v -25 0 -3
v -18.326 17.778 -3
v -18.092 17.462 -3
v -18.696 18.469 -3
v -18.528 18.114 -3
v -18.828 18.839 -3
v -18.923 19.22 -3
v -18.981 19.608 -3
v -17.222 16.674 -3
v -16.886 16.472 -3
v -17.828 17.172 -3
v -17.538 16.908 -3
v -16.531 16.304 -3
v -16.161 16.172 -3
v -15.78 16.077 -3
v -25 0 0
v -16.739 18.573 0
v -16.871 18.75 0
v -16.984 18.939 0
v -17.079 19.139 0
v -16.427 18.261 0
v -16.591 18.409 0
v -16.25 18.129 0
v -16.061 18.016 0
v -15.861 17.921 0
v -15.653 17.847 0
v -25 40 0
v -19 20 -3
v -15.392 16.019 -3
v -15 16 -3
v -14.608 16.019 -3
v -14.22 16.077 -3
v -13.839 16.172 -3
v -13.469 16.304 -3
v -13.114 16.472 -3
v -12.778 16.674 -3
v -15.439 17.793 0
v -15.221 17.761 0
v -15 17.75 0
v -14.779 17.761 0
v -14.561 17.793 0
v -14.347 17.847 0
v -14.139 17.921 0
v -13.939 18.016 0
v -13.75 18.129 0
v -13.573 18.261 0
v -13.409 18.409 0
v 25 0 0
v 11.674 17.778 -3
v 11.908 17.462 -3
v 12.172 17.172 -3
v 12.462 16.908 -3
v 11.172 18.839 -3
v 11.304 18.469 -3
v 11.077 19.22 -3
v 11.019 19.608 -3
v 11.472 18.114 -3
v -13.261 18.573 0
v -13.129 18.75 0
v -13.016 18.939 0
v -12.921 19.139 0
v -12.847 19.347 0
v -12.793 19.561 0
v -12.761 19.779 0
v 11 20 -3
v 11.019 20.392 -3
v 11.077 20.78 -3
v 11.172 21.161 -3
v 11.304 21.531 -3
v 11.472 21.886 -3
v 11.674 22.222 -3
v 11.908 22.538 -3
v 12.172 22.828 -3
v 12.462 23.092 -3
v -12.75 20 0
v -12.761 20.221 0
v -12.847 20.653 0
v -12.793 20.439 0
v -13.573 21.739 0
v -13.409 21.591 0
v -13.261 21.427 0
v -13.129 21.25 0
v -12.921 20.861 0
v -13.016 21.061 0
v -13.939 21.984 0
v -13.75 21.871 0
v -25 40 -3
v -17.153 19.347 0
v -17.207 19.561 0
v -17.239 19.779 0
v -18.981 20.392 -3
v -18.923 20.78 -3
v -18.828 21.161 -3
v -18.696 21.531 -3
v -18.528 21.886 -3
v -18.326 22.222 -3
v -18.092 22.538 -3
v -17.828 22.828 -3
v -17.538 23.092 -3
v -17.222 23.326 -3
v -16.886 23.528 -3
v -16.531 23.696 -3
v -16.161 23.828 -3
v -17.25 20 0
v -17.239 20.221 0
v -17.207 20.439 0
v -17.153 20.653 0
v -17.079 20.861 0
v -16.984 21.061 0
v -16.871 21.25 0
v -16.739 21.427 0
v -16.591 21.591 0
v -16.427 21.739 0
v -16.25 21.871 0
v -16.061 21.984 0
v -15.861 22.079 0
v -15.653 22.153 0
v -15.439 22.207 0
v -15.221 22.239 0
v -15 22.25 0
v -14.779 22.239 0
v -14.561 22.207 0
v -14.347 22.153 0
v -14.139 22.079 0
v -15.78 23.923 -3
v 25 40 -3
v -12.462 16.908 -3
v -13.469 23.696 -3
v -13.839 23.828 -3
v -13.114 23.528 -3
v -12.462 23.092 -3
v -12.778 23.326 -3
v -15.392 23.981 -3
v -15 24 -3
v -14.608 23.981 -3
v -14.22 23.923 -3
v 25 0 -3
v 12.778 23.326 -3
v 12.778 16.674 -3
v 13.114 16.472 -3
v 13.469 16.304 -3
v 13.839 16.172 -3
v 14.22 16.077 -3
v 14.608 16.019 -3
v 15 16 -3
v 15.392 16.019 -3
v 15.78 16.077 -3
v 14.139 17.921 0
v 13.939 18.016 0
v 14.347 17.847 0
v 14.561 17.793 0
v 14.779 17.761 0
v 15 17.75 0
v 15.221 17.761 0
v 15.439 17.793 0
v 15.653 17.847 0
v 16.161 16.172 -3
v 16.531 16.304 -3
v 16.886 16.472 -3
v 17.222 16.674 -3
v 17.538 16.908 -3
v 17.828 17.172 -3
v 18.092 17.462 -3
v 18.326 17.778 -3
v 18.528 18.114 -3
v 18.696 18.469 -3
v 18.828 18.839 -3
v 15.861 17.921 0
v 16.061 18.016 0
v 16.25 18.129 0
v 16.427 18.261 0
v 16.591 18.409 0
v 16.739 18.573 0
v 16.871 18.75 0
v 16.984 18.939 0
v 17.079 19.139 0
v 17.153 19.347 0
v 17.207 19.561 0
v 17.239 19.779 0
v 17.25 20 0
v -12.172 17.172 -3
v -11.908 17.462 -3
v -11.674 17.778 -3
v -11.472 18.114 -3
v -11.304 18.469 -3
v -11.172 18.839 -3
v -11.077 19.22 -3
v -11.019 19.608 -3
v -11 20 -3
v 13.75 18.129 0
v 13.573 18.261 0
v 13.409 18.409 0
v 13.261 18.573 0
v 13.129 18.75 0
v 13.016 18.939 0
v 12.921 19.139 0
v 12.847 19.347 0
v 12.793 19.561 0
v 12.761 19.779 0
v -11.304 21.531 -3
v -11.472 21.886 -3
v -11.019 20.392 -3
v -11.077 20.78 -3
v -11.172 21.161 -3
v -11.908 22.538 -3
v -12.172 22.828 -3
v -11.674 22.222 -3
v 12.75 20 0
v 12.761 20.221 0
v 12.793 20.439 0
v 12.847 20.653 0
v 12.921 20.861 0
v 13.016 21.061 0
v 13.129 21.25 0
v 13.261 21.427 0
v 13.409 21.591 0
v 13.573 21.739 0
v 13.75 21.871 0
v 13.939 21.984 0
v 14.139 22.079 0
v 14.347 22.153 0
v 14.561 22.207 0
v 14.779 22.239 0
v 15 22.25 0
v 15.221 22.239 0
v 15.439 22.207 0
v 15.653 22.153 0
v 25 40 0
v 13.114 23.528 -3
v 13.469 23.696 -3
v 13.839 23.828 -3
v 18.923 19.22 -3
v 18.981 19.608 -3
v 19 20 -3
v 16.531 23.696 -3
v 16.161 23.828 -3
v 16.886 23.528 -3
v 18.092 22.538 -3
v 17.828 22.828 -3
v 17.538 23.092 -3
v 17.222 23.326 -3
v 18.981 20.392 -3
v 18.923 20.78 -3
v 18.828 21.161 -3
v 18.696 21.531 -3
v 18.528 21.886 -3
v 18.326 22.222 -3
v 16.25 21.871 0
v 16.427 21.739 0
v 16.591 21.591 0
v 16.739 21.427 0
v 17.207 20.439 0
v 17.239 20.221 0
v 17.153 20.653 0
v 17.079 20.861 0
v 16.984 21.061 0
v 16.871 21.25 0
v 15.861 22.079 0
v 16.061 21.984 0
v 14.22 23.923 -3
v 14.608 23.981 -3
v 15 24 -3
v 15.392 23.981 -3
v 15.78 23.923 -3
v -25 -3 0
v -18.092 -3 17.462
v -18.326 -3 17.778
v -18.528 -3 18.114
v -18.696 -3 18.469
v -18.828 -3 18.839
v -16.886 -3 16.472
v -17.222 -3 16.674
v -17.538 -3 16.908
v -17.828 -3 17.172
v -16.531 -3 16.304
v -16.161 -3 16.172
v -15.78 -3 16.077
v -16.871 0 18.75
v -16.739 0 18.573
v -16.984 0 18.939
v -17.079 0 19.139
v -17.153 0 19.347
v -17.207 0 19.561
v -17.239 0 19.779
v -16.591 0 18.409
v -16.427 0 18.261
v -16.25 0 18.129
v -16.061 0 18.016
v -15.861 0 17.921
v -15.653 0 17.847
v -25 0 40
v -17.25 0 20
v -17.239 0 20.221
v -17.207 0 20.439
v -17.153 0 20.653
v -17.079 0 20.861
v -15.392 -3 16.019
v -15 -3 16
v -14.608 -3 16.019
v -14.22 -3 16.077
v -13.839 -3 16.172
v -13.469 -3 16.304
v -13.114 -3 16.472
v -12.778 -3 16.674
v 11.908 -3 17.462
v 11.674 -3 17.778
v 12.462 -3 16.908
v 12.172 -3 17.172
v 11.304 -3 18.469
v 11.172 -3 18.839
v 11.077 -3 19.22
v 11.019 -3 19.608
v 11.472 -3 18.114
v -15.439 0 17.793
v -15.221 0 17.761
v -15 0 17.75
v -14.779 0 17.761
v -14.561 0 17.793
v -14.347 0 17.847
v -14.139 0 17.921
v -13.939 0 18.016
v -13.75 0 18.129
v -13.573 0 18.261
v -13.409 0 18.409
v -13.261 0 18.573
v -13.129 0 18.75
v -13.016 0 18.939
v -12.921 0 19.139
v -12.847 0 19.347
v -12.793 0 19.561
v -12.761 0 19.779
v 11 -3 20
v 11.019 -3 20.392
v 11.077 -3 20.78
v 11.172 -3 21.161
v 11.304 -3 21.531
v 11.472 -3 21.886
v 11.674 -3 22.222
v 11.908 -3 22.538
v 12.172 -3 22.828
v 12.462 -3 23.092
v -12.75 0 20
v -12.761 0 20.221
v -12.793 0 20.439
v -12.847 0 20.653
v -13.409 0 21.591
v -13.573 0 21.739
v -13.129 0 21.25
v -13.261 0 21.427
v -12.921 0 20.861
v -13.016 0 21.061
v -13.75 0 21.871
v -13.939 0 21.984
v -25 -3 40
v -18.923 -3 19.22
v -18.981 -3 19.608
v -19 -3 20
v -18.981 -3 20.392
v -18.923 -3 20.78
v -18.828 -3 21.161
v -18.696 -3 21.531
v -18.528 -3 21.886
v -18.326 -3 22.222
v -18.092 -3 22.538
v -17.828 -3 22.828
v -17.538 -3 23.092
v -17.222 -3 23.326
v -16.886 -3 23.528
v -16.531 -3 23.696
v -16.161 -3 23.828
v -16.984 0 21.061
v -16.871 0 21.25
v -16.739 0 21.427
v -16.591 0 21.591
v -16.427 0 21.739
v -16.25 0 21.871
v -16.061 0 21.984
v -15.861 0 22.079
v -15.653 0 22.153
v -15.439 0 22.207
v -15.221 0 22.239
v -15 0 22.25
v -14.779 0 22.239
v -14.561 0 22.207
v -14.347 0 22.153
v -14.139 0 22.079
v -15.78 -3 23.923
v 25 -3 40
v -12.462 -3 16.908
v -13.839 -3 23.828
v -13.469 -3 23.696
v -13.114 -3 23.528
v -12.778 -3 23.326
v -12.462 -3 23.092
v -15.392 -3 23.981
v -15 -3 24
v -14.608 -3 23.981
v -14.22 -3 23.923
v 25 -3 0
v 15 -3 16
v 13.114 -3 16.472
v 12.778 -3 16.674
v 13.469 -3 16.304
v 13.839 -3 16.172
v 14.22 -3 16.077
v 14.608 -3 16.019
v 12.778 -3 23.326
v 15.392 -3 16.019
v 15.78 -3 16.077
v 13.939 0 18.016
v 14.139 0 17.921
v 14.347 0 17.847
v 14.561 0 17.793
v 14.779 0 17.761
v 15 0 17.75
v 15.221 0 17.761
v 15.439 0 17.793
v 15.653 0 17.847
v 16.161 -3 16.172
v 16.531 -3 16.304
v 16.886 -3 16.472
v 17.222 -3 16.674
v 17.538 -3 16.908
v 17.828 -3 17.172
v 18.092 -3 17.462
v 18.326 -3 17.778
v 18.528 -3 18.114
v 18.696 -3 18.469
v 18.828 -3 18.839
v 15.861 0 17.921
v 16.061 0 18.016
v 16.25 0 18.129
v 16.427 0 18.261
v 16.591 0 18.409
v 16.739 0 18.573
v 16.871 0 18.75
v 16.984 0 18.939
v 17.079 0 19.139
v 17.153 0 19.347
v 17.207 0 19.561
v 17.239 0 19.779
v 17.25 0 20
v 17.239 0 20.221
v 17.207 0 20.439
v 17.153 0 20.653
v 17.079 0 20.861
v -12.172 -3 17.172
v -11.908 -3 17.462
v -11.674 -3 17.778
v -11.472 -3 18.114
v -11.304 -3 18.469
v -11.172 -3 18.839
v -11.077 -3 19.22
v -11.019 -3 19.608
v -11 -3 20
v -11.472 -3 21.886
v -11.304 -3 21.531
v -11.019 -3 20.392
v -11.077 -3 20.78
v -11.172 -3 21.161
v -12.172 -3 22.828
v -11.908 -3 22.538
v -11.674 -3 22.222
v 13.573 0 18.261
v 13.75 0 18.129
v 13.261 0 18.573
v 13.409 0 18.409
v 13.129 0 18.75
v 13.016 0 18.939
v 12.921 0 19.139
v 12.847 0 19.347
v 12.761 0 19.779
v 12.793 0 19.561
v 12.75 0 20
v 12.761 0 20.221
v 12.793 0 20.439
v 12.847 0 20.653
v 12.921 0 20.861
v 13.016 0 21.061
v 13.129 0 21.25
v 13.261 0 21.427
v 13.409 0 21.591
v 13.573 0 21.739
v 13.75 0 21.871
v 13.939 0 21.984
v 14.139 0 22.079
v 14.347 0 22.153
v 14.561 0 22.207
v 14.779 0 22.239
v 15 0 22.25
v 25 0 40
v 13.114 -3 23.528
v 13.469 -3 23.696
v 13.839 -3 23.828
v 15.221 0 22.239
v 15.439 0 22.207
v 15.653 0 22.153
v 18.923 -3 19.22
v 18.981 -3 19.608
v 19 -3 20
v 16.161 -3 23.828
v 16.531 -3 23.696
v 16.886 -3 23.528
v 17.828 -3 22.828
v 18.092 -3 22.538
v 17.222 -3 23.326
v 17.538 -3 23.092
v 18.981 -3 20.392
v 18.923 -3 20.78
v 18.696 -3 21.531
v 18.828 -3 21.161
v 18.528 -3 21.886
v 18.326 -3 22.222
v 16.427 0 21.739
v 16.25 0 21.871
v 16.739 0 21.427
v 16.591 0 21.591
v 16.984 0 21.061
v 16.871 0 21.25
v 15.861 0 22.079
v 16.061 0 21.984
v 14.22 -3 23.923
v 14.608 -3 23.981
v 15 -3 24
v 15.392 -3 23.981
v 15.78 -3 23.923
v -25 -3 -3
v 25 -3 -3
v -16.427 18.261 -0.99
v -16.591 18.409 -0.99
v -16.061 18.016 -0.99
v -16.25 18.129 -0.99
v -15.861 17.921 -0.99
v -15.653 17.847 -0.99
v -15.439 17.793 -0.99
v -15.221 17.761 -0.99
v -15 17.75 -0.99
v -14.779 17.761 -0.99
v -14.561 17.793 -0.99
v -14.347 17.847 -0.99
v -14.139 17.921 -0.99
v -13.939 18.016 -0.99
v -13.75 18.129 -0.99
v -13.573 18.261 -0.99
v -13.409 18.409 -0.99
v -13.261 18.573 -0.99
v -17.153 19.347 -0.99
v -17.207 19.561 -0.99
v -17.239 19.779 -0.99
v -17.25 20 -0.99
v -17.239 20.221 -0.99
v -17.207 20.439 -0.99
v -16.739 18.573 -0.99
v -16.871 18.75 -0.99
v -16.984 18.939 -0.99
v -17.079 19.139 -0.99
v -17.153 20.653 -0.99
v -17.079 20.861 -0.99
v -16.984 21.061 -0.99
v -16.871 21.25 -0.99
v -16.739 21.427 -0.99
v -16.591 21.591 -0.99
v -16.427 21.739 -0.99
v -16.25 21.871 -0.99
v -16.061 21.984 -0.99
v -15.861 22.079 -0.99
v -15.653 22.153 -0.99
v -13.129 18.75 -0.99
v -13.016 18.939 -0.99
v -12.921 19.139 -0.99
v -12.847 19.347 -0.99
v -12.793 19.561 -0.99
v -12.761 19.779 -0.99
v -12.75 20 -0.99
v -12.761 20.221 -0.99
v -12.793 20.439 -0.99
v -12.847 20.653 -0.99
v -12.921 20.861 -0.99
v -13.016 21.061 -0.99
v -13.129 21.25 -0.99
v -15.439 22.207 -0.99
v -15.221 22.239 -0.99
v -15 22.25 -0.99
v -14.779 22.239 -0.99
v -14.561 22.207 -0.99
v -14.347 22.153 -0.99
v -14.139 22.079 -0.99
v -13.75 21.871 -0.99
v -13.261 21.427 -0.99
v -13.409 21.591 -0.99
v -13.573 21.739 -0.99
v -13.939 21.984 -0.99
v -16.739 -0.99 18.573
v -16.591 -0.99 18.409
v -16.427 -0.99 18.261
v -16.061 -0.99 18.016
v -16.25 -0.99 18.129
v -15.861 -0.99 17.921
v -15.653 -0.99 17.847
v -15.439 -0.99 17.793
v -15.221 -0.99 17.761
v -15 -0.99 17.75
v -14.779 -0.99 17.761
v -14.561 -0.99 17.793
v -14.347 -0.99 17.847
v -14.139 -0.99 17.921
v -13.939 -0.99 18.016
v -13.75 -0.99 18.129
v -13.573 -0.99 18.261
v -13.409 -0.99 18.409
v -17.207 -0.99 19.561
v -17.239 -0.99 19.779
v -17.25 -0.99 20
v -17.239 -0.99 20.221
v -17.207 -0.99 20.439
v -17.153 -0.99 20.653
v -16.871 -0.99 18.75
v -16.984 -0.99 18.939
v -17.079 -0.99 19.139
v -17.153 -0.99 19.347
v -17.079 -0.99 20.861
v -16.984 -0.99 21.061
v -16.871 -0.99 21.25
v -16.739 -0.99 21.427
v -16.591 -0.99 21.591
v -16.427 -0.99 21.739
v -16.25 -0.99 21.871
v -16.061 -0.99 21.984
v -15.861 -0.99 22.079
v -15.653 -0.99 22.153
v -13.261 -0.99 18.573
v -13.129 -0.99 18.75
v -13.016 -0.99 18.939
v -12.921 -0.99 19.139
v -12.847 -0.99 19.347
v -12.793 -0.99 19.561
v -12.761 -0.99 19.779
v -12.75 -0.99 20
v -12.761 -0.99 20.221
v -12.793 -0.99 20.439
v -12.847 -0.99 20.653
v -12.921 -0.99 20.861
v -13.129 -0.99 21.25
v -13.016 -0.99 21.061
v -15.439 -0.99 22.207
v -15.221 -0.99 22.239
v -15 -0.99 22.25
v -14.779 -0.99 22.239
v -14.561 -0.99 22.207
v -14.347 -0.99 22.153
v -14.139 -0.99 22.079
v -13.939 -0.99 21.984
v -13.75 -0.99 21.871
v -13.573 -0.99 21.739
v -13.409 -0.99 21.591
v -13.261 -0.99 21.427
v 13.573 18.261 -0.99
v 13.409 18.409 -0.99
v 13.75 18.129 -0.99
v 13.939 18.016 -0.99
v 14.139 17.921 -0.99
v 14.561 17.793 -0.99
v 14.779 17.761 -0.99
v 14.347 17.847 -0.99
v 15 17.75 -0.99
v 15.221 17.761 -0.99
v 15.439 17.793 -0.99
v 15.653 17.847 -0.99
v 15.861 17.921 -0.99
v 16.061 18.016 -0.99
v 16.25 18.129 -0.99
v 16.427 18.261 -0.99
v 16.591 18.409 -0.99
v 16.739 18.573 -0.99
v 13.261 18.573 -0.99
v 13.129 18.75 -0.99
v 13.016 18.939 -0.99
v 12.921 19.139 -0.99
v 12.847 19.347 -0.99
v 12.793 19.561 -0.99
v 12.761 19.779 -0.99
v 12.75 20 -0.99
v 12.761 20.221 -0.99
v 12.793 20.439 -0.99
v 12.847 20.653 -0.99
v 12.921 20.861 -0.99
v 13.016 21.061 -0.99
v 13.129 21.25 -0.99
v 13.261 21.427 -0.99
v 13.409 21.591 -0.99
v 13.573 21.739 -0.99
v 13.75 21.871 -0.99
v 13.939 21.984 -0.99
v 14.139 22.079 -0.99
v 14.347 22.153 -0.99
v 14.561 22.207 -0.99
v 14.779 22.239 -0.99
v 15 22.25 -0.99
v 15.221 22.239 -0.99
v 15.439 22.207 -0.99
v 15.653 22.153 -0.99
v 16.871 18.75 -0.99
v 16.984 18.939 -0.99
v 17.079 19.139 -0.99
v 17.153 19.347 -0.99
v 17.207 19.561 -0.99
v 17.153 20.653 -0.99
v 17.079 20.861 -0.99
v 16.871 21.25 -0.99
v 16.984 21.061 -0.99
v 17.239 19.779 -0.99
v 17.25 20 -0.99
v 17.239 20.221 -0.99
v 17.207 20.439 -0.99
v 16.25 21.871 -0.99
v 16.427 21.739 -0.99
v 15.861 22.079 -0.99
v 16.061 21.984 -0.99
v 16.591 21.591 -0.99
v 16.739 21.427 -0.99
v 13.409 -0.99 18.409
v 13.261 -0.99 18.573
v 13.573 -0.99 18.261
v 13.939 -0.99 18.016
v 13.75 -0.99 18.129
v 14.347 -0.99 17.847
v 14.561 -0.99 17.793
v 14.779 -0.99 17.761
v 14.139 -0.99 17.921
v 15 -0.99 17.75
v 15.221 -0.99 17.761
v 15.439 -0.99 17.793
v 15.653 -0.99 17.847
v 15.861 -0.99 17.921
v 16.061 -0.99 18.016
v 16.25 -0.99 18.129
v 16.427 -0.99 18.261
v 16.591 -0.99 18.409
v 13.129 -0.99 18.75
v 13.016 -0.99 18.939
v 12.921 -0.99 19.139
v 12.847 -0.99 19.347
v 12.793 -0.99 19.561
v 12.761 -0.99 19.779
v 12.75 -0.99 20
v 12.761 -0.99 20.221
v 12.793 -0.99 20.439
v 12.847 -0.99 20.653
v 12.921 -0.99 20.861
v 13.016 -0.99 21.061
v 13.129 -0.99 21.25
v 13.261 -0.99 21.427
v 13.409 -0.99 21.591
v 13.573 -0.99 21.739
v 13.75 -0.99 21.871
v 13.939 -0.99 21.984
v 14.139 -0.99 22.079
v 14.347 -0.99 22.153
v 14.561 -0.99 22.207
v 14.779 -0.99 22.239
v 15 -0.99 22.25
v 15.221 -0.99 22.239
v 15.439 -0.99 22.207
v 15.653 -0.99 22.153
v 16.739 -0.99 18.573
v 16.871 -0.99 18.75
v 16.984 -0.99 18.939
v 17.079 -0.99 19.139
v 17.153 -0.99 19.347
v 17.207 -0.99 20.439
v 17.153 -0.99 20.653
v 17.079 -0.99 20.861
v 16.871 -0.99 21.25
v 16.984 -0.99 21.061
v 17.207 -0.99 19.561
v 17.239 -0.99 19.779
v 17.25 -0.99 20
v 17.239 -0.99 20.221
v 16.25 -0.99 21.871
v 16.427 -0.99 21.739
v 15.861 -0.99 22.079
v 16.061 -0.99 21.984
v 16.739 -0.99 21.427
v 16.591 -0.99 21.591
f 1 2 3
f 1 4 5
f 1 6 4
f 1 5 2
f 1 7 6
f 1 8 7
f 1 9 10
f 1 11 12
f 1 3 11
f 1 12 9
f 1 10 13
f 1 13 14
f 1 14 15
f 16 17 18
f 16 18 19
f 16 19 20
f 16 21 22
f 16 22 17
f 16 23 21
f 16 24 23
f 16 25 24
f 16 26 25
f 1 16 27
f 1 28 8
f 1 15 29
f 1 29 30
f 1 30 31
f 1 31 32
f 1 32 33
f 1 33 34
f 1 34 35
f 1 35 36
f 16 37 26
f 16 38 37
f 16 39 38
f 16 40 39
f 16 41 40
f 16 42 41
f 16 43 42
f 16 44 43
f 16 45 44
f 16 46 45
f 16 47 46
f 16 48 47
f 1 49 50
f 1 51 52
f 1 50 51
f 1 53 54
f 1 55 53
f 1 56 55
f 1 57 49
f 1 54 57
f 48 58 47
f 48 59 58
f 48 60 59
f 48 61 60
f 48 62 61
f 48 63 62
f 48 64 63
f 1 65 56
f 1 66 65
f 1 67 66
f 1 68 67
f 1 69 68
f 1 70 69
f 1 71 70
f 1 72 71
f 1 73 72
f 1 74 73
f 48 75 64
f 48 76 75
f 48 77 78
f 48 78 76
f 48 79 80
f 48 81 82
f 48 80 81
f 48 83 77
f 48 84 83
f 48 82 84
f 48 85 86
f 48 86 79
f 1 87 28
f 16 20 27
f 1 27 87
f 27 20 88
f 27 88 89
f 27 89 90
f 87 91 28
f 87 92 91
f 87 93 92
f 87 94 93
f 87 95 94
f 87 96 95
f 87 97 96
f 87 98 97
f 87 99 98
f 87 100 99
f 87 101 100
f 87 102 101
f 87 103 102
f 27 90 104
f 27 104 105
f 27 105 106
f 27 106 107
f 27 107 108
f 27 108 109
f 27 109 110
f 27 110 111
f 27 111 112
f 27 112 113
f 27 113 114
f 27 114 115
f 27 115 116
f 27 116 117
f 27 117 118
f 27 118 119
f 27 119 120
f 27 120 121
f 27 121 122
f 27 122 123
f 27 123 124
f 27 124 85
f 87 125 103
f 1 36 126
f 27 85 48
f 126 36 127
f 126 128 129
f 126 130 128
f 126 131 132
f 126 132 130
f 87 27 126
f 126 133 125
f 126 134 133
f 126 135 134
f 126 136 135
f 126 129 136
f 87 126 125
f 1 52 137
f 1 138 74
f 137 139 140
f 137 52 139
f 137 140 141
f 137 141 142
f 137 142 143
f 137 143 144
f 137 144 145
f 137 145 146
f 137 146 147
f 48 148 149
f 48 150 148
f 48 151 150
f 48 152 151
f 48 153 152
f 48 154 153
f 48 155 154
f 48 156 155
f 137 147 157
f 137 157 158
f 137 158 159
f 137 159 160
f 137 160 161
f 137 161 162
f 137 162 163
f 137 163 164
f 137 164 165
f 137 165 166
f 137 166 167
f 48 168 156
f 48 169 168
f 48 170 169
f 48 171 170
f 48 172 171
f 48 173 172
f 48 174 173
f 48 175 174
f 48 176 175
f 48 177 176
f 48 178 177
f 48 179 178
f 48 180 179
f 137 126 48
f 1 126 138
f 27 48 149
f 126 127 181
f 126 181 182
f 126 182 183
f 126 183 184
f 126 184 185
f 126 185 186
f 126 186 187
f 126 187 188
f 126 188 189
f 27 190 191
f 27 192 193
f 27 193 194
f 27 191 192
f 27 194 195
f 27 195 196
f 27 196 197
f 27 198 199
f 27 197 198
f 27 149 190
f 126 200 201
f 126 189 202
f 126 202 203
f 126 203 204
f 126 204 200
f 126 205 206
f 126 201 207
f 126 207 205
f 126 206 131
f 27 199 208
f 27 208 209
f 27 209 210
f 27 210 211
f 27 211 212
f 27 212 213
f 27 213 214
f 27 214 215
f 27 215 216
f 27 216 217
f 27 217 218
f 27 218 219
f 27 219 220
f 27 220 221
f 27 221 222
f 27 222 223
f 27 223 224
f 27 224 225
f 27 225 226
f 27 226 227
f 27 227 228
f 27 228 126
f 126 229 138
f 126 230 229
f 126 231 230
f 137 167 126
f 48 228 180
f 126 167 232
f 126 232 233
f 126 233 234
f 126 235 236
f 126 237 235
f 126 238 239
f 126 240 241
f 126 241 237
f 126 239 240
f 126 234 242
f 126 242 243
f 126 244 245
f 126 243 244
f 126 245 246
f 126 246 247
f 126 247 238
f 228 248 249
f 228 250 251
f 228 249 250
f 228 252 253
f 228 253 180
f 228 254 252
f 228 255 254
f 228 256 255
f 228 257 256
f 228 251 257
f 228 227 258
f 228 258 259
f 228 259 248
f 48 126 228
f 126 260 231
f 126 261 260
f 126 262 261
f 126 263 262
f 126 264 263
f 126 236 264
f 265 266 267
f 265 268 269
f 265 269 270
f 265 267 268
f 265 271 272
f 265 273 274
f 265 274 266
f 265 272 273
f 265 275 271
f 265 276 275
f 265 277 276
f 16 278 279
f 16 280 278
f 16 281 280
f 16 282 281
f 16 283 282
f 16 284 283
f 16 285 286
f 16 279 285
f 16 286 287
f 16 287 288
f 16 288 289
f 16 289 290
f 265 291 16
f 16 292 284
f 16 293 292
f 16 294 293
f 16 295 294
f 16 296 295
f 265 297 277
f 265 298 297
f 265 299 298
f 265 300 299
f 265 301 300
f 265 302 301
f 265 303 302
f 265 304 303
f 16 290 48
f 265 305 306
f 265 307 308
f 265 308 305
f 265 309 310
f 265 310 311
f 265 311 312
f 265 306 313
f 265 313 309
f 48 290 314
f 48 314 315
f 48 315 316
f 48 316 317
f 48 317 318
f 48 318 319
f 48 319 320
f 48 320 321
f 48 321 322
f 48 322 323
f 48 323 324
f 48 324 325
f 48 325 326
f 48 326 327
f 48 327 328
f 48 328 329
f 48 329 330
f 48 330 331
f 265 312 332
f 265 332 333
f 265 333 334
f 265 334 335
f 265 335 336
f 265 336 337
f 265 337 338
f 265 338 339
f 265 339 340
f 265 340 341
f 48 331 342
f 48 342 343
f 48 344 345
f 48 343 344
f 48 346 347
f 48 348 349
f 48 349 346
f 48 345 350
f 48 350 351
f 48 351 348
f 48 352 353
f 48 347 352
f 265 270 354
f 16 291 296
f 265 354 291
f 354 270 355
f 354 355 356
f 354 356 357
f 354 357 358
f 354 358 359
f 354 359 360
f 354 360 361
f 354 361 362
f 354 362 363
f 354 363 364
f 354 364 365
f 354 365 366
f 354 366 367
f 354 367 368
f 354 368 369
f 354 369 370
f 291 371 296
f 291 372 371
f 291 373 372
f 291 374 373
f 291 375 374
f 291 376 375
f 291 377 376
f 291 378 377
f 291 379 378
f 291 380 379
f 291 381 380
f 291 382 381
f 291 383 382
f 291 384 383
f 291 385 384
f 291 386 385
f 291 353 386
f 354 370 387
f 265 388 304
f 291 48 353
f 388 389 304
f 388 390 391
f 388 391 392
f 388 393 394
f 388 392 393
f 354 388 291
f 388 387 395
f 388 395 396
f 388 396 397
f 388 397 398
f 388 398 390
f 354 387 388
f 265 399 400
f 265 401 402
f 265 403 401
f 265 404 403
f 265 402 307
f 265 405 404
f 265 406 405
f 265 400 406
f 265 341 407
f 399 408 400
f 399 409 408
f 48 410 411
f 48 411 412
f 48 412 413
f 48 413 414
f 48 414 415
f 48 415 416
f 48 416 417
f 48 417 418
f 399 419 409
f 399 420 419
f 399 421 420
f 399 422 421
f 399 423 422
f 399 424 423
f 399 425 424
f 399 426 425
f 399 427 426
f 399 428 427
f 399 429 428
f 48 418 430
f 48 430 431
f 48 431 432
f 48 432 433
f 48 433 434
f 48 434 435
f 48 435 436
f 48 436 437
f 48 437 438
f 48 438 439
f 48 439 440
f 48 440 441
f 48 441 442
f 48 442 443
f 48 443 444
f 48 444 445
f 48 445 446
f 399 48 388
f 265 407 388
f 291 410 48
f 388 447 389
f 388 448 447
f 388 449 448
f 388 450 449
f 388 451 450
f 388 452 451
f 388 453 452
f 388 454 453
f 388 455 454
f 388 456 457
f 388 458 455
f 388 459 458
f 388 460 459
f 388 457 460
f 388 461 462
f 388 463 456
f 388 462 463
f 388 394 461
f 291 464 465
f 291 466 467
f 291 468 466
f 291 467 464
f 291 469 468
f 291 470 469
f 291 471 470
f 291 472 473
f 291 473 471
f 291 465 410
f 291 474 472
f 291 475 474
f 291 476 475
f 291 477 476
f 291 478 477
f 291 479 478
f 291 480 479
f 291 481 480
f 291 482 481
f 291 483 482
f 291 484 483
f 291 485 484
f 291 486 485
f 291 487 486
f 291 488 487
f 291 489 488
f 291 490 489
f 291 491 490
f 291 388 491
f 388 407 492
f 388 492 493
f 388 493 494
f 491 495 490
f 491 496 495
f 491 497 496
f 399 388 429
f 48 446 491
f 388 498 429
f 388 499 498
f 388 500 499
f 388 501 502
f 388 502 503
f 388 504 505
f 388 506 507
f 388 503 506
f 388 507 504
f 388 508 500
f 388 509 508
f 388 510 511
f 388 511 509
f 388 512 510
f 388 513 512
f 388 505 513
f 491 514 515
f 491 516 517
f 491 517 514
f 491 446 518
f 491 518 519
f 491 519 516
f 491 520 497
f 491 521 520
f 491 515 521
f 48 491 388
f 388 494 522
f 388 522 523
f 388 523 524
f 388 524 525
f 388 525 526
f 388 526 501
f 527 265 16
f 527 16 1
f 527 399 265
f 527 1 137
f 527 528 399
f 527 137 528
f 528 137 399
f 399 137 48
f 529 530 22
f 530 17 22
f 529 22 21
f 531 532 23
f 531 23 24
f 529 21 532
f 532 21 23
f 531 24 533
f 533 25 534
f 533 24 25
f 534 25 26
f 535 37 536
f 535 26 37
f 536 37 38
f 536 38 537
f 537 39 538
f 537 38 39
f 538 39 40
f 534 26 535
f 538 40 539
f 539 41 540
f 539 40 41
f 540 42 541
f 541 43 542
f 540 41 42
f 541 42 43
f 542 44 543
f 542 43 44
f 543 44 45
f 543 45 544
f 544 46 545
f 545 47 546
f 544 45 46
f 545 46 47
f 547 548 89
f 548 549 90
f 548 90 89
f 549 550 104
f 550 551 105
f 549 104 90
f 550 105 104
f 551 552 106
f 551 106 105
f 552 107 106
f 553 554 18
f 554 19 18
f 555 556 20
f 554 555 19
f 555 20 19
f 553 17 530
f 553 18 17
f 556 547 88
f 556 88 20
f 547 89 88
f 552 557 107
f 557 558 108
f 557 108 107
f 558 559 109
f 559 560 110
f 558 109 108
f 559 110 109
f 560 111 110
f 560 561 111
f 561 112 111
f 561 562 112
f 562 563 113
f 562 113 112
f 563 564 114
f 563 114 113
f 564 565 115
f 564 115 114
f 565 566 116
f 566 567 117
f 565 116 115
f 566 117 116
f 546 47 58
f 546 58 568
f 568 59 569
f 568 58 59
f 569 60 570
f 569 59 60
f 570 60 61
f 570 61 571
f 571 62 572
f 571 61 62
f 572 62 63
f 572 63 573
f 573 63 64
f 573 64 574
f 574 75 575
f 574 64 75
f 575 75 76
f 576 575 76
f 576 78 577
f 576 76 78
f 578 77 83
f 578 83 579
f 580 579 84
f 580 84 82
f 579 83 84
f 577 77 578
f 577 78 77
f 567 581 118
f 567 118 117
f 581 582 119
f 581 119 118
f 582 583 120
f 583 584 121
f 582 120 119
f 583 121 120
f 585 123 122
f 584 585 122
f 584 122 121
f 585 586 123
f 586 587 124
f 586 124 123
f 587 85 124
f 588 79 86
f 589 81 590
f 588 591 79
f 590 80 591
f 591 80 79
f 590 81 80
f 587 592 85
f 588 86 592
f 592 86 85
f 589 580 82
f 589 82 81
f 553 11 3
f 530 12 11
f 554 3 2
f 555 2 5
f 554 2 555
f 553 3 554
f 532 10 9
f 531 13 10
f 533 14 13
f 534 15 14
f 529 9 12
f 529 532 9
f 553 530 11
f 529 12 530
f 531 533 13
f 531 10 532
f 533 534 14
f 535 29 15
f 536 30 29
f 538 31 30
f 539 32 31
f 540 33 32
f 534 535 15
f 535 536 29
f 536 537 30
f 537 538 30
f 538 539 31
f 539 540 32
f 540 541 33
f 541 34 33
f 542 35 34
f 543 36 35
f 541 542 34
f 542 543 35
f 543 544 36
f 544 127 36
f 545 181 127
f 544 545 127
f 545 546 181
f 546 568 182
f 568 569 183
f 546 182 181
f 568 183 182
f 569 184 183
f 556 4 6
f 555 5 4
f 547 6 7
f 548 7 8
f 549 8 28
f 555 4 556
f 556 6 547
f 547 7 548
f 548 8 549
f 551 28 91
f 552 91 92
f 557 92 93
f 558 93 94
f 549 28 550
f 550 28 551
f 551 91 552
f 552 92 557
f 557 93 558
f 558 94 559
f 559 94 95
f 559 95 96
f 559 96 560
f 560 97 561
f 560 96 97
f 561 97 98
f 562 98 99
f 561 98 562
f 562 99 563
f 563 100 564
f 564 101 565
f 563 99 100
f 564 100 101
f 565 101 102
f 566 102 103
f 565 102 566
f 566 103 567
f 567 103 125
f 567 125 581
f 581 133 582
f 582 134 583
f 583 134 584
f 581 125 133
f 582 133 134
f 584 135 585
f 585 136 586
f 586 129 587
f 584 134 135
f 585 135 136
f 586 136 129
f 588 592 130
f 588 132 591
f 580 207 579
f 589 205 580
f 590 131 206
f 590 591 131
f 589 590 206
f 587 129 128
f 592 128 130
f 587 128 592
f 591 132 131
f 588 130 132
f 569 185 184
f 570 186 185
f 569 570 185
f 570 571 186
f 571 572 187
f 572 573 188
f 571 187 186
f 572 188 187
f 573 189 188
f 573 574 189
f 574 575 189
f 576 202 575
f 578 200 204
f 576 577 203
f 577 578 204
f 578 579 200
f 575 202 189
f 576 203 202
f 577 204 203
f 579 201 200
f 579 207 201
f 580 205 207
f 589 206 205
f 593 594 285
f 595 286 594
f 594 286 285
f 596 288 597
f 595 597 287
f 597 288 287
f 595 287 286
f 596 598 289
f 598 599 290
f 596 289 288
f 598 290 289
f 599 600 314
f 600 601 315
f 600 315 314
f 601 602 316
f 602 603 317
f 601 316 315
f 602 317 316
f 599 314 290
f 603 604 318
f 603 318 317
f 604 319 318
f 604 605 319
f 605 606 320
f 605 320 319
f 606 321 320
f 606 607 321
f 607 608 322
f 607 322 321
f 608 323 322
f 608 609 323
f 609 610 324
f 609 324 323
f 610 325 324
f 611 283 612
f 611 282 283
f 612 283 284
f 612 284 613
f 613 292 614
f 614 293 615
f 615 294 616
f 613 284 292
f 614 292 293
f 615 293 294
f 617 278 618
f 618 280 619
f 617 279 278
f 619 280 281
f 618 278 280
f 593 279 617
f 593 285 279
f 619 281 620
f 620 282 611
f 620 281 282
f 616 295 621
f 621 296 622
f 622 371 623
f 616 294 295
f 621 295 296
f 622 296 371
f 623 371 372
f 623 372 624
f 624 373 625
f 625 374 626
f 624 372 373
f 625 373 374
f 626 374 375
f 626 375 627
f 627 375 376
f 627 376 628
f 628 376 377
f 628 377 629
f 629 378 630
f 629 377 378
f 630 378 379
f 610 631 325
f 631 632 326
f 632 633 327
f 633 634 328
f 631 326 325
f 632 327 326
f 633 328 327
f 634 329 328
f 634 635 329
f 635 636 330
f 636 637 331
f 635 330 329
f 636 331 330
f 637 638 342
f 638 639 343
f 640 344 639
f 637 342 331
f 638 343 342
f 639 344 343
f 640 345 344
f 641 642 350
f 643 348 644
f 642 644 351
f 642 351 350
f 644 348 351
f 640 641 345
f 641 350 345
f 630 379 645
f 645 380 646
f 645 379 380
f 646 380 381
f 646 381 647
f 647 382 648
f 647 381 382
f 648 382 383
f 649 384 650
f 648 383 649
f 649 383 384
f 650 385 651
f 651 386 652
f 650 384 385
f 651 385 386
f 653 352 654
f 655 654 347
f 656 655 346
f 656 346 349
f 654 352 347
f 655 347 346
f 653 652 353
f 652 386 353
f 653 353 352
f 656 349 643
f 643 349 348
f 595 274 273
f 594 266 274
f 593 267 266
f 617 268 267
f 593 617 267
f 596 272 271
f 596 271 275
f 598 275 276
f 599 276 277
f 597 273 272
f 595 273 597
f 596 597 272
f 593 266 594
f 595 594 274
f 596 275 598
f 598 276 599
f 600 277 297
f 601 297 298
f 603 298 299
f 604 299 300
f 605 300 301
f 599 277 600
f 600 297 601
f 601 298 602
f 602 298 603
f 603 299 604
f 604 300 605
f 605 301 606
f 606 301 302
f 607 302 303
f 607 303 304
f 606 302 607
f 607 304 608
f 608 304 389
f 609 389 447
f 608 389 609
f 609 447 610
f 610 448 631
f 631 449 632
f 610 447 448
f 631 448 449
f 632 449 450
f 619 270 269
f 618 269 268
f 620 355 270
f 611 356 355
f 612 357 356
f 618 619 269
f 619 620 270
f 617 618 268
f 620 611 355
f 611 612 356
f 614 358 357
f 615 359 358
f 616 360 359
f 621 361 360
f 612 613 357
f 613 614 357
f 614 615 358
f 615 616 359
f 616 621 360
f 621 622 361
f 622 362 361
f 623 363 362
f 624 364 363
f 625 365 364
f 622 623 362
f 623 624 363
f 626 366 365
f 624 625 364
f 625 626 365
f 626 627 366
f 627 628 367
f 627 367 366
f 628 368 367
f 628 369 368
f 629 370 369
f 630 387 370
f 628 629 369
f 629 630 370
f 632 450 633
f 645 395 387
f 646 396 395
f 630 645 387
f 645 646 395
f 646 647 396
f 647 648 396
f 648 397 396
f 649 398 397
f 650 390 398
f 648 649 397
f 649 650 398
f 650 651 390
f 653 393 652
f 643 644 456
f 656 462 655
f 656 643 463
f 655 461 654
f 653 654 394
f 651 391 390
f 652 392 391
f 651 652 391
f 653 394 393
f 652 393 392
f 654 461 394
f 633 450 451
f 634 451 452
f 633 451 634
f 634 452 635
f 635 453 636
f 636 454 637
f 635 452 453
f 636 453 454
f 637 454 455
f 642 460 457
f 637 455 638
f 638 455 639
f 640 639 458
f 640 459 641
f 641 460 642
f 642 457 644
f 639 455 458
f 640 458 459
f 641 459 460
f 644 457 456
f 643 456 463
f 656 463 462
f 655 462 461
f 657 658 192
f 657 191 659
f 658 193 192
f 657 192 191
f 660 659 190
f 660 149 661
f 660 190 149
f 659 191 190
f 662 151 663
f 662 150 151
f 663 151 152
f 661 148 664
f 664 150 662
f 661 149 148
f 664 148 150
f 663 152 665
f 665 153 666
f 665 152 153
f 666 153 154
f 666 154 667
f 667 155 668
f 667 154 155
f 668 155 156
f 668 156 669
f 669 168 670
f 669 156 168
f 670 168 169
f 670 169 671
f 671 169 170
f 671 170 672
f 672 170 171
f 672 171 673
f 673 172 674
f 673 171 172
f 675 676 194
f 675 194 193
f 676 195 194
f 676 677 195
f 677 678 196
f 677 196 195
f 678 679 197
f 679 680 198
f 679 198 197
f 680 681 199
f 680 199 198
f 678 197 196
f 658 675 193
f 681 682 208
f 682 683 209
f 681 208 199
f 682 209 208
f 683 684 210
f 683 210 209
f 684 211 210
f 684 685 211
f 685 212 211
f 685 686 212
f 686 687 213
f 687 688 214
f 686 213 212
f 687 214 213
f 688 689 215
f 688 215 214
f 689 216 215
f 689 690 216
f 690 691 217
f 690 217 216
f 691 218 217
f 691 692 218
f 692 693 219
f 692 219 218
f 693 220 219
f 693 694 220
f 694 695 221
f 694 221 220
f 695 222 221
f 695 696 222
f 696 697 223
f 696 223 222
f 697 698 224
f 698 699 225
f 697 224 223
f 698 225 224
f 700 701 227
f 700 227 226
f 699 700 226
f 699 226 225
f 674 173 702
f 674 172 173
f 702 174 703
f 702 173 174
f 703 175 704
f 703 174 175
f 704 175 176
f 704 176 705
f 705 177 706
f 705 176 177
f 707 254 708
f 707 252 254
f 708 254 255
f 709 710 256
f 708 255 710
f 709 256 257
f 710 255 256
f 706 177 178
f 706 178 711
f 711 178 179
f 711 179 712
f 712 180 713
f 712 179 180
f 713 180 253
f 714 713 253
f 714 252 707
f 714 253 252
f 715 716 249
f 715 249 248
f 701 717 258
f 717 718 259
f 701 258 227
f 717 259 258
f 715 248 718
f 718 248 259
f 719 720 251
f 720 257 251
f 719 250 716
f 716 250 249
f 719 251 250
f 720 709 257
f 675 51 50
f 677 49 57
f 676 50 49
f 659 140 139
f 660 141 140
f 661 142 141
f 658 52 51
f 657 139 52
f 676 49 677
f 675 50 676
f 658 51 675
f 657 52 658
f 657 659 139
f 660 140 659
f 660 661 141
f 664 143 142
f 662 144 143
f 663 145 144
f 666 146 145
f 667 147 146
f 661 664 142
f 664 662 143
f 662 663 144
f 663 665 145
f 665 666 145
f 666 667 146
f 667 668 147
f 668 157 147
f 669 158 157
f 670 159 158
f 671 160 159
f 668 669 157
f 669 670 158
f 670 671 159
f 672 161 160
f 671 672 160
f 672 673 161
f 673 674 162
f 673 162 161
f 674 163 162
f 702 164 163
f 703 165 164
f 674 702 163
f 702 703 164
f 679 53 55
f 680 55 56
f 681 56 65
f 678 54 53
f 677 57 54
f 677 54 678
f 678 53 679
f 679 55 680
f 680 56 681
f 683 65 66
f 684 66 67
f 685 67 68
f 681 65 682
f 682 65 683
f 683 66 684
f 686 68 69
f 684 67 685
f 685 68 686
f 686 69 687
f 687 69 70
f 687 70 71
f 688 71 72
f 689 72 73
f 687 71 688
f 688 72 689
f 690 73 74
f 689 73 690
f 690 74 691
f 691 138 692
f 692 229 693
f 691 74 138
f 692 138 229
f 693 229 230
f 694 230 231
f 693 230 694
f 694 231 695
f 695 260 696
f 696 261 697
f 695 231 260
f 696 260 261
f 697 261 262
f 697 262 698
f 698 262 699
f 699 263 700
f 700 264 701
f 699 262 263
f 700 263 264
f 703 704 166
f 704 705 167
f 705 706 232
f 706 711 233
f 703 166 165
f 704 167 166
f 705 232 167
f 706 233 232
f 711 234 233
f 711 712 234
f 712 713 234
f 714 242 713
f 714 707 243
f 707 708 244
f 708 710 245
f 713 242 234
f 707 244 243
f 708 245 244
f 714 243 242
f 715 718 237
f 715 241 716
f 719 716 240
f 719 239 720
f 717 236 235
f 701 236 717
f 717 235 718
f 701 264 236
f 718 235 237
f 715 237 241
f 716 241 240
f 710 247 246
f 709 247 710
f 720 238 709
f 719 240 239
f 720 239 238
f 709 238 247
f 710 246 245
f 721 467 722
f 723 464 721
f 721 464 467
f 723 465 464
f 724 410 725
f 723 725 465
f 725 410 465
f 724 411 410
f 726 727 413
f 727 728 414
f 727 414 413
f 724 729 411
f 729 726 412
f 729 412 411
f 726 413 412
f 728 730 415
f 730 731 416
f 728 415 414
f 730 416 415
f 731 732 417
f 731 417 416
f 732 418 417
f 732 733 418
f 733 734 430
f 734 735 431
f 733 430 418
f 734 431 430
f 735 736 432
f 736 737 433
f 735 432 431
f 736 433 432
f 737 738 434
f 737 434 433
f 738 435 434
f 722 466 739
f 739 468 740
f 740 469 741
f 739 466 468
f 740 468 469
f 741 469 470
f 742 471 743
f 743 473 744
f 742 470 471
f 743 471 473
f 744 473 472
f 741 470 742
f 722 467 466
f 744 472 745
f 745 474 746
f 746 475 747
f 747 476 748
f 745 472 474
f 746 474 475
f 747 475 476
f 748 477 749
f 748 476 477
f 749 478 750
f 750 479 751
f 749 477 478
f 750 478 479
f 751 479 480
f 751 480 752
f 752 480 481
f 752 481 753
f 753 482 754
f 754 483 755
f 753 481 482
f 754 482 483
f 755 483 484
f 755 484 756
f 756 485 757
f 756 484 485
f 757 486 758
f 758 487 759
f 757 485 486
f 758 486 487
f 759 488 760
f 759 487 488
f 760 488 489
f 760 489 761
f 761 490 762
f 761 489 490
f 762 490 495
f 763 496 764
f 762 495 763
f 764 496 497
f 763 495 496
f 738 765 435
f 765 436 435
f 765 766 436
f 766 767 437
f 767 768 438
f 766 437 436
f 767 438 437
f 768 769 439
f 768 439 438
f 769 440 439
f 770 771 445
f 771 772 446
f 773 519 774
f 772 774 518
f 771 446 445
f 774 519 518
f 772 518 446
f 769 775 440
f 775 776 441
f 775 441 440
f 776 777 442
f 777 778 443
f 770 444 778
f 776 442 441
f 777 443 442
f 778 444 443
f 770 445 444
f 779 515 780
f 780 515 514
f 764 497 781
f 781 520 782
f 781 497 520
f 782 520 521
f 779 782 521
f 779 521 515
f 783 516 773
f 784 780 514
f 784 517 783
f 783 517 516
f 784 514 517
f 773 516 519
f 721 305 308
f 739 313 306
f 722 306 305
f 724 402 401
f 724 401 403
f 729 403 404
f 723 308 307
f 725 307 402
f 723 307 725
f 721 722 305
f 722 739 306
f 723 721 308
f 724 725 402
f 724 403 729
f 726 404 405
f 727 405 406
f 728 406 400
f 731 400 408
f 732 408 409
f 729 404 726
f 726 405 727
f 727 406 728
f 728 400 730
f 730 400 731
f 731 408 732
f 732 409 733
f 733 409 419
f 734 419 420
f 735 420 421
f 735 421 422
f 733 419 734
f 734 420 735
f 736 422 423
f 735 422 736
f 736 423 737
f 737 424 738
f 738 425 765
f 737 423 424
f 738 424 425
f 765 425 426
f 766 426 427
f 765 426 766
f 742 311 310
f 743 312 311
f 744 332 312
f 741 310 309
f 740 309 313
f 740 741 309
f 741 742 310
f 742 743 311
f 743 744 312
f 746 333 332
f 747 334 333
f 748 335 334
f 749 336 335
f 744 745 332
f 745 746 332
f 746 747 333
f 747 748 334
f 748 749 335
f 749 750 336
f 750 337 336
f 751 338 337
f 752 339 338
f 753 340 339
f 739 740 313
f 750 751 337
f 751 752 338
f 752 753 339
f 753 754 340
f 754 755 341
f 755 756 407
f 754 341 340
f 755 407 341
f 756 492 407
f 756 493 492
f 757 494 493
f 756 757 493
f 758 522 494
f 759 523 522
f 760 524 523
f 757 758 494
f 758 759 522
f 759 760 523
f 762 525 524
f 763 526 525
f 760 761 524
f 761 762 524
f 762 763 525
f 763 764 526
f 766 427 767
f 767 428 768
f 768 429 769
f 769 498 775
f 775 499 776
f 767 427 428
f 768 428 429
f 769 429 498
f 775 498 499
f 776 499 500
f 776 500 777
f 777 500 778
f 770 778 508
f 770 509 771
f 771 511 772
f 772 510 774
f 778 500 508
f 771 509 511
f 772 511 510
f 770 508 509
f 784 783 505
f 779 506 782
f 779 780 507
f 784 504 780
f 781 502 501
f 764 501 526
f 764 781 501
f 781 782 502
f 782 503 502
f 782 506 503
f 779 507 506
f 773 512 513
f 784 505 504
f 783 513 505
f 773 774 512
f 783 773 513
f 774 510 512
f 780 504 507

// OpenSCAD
// L-bracket dimensions
width  = 50;
depth  = 40;
height = 40;
thick  = 3;

// Hole dimensions
hole_d       = 4.5;
csk_d        = 8;
csk_depth    = 2;
edge_offset  = 10;
hole_x       = width / 2 - edge_offset;

$fn = 64;

// Horizontal flange hole: countersink faces downward (-Z)
module horizontal_hole(x, y) {
    translate([x, y, -thick - 0.1])
        cylinder(h = thick + 0.2, d = hole_d);

    translate([x, y, -thick])
        cylinder(h = csk_depth + 0.01, d1 = csk_d, d2 = hole_d);
}

// Vertical flange hole: countersink faces outward (-Y)
module vertical_hole(x, z) {
    translate([x, -thick - 0.1, z])
        rotate([-90, 0, 0])
            cylinder(h = thick + 0.2, d = hole_d);

    translate([x, -thick, z])
        rotate([-90, 0, 0])
            cylinder(h = csk_depth + 0.01, d1 = csk_d, d2 = hole_d);
}

difference() {
    union() {
        // Horizontal flange: extends in +Y direction
        translate([-width / 2, 0, -thick])
            cube([width, depth, thick]);

        // Vertical flange: extends in +Z direction
        translate([-width / 2, -thick, 0])
            cube([width, thick, height]);

        // Solid corner connection
        translate([-width / 2, -thick, -thick])
            cube([width, thick, thick]);
    }

    for (x = [-hole_x, hole_x]) {
        horizontal_hole(x, depth / 2);
        vertical_hole(x, height / 2);
    }
}
